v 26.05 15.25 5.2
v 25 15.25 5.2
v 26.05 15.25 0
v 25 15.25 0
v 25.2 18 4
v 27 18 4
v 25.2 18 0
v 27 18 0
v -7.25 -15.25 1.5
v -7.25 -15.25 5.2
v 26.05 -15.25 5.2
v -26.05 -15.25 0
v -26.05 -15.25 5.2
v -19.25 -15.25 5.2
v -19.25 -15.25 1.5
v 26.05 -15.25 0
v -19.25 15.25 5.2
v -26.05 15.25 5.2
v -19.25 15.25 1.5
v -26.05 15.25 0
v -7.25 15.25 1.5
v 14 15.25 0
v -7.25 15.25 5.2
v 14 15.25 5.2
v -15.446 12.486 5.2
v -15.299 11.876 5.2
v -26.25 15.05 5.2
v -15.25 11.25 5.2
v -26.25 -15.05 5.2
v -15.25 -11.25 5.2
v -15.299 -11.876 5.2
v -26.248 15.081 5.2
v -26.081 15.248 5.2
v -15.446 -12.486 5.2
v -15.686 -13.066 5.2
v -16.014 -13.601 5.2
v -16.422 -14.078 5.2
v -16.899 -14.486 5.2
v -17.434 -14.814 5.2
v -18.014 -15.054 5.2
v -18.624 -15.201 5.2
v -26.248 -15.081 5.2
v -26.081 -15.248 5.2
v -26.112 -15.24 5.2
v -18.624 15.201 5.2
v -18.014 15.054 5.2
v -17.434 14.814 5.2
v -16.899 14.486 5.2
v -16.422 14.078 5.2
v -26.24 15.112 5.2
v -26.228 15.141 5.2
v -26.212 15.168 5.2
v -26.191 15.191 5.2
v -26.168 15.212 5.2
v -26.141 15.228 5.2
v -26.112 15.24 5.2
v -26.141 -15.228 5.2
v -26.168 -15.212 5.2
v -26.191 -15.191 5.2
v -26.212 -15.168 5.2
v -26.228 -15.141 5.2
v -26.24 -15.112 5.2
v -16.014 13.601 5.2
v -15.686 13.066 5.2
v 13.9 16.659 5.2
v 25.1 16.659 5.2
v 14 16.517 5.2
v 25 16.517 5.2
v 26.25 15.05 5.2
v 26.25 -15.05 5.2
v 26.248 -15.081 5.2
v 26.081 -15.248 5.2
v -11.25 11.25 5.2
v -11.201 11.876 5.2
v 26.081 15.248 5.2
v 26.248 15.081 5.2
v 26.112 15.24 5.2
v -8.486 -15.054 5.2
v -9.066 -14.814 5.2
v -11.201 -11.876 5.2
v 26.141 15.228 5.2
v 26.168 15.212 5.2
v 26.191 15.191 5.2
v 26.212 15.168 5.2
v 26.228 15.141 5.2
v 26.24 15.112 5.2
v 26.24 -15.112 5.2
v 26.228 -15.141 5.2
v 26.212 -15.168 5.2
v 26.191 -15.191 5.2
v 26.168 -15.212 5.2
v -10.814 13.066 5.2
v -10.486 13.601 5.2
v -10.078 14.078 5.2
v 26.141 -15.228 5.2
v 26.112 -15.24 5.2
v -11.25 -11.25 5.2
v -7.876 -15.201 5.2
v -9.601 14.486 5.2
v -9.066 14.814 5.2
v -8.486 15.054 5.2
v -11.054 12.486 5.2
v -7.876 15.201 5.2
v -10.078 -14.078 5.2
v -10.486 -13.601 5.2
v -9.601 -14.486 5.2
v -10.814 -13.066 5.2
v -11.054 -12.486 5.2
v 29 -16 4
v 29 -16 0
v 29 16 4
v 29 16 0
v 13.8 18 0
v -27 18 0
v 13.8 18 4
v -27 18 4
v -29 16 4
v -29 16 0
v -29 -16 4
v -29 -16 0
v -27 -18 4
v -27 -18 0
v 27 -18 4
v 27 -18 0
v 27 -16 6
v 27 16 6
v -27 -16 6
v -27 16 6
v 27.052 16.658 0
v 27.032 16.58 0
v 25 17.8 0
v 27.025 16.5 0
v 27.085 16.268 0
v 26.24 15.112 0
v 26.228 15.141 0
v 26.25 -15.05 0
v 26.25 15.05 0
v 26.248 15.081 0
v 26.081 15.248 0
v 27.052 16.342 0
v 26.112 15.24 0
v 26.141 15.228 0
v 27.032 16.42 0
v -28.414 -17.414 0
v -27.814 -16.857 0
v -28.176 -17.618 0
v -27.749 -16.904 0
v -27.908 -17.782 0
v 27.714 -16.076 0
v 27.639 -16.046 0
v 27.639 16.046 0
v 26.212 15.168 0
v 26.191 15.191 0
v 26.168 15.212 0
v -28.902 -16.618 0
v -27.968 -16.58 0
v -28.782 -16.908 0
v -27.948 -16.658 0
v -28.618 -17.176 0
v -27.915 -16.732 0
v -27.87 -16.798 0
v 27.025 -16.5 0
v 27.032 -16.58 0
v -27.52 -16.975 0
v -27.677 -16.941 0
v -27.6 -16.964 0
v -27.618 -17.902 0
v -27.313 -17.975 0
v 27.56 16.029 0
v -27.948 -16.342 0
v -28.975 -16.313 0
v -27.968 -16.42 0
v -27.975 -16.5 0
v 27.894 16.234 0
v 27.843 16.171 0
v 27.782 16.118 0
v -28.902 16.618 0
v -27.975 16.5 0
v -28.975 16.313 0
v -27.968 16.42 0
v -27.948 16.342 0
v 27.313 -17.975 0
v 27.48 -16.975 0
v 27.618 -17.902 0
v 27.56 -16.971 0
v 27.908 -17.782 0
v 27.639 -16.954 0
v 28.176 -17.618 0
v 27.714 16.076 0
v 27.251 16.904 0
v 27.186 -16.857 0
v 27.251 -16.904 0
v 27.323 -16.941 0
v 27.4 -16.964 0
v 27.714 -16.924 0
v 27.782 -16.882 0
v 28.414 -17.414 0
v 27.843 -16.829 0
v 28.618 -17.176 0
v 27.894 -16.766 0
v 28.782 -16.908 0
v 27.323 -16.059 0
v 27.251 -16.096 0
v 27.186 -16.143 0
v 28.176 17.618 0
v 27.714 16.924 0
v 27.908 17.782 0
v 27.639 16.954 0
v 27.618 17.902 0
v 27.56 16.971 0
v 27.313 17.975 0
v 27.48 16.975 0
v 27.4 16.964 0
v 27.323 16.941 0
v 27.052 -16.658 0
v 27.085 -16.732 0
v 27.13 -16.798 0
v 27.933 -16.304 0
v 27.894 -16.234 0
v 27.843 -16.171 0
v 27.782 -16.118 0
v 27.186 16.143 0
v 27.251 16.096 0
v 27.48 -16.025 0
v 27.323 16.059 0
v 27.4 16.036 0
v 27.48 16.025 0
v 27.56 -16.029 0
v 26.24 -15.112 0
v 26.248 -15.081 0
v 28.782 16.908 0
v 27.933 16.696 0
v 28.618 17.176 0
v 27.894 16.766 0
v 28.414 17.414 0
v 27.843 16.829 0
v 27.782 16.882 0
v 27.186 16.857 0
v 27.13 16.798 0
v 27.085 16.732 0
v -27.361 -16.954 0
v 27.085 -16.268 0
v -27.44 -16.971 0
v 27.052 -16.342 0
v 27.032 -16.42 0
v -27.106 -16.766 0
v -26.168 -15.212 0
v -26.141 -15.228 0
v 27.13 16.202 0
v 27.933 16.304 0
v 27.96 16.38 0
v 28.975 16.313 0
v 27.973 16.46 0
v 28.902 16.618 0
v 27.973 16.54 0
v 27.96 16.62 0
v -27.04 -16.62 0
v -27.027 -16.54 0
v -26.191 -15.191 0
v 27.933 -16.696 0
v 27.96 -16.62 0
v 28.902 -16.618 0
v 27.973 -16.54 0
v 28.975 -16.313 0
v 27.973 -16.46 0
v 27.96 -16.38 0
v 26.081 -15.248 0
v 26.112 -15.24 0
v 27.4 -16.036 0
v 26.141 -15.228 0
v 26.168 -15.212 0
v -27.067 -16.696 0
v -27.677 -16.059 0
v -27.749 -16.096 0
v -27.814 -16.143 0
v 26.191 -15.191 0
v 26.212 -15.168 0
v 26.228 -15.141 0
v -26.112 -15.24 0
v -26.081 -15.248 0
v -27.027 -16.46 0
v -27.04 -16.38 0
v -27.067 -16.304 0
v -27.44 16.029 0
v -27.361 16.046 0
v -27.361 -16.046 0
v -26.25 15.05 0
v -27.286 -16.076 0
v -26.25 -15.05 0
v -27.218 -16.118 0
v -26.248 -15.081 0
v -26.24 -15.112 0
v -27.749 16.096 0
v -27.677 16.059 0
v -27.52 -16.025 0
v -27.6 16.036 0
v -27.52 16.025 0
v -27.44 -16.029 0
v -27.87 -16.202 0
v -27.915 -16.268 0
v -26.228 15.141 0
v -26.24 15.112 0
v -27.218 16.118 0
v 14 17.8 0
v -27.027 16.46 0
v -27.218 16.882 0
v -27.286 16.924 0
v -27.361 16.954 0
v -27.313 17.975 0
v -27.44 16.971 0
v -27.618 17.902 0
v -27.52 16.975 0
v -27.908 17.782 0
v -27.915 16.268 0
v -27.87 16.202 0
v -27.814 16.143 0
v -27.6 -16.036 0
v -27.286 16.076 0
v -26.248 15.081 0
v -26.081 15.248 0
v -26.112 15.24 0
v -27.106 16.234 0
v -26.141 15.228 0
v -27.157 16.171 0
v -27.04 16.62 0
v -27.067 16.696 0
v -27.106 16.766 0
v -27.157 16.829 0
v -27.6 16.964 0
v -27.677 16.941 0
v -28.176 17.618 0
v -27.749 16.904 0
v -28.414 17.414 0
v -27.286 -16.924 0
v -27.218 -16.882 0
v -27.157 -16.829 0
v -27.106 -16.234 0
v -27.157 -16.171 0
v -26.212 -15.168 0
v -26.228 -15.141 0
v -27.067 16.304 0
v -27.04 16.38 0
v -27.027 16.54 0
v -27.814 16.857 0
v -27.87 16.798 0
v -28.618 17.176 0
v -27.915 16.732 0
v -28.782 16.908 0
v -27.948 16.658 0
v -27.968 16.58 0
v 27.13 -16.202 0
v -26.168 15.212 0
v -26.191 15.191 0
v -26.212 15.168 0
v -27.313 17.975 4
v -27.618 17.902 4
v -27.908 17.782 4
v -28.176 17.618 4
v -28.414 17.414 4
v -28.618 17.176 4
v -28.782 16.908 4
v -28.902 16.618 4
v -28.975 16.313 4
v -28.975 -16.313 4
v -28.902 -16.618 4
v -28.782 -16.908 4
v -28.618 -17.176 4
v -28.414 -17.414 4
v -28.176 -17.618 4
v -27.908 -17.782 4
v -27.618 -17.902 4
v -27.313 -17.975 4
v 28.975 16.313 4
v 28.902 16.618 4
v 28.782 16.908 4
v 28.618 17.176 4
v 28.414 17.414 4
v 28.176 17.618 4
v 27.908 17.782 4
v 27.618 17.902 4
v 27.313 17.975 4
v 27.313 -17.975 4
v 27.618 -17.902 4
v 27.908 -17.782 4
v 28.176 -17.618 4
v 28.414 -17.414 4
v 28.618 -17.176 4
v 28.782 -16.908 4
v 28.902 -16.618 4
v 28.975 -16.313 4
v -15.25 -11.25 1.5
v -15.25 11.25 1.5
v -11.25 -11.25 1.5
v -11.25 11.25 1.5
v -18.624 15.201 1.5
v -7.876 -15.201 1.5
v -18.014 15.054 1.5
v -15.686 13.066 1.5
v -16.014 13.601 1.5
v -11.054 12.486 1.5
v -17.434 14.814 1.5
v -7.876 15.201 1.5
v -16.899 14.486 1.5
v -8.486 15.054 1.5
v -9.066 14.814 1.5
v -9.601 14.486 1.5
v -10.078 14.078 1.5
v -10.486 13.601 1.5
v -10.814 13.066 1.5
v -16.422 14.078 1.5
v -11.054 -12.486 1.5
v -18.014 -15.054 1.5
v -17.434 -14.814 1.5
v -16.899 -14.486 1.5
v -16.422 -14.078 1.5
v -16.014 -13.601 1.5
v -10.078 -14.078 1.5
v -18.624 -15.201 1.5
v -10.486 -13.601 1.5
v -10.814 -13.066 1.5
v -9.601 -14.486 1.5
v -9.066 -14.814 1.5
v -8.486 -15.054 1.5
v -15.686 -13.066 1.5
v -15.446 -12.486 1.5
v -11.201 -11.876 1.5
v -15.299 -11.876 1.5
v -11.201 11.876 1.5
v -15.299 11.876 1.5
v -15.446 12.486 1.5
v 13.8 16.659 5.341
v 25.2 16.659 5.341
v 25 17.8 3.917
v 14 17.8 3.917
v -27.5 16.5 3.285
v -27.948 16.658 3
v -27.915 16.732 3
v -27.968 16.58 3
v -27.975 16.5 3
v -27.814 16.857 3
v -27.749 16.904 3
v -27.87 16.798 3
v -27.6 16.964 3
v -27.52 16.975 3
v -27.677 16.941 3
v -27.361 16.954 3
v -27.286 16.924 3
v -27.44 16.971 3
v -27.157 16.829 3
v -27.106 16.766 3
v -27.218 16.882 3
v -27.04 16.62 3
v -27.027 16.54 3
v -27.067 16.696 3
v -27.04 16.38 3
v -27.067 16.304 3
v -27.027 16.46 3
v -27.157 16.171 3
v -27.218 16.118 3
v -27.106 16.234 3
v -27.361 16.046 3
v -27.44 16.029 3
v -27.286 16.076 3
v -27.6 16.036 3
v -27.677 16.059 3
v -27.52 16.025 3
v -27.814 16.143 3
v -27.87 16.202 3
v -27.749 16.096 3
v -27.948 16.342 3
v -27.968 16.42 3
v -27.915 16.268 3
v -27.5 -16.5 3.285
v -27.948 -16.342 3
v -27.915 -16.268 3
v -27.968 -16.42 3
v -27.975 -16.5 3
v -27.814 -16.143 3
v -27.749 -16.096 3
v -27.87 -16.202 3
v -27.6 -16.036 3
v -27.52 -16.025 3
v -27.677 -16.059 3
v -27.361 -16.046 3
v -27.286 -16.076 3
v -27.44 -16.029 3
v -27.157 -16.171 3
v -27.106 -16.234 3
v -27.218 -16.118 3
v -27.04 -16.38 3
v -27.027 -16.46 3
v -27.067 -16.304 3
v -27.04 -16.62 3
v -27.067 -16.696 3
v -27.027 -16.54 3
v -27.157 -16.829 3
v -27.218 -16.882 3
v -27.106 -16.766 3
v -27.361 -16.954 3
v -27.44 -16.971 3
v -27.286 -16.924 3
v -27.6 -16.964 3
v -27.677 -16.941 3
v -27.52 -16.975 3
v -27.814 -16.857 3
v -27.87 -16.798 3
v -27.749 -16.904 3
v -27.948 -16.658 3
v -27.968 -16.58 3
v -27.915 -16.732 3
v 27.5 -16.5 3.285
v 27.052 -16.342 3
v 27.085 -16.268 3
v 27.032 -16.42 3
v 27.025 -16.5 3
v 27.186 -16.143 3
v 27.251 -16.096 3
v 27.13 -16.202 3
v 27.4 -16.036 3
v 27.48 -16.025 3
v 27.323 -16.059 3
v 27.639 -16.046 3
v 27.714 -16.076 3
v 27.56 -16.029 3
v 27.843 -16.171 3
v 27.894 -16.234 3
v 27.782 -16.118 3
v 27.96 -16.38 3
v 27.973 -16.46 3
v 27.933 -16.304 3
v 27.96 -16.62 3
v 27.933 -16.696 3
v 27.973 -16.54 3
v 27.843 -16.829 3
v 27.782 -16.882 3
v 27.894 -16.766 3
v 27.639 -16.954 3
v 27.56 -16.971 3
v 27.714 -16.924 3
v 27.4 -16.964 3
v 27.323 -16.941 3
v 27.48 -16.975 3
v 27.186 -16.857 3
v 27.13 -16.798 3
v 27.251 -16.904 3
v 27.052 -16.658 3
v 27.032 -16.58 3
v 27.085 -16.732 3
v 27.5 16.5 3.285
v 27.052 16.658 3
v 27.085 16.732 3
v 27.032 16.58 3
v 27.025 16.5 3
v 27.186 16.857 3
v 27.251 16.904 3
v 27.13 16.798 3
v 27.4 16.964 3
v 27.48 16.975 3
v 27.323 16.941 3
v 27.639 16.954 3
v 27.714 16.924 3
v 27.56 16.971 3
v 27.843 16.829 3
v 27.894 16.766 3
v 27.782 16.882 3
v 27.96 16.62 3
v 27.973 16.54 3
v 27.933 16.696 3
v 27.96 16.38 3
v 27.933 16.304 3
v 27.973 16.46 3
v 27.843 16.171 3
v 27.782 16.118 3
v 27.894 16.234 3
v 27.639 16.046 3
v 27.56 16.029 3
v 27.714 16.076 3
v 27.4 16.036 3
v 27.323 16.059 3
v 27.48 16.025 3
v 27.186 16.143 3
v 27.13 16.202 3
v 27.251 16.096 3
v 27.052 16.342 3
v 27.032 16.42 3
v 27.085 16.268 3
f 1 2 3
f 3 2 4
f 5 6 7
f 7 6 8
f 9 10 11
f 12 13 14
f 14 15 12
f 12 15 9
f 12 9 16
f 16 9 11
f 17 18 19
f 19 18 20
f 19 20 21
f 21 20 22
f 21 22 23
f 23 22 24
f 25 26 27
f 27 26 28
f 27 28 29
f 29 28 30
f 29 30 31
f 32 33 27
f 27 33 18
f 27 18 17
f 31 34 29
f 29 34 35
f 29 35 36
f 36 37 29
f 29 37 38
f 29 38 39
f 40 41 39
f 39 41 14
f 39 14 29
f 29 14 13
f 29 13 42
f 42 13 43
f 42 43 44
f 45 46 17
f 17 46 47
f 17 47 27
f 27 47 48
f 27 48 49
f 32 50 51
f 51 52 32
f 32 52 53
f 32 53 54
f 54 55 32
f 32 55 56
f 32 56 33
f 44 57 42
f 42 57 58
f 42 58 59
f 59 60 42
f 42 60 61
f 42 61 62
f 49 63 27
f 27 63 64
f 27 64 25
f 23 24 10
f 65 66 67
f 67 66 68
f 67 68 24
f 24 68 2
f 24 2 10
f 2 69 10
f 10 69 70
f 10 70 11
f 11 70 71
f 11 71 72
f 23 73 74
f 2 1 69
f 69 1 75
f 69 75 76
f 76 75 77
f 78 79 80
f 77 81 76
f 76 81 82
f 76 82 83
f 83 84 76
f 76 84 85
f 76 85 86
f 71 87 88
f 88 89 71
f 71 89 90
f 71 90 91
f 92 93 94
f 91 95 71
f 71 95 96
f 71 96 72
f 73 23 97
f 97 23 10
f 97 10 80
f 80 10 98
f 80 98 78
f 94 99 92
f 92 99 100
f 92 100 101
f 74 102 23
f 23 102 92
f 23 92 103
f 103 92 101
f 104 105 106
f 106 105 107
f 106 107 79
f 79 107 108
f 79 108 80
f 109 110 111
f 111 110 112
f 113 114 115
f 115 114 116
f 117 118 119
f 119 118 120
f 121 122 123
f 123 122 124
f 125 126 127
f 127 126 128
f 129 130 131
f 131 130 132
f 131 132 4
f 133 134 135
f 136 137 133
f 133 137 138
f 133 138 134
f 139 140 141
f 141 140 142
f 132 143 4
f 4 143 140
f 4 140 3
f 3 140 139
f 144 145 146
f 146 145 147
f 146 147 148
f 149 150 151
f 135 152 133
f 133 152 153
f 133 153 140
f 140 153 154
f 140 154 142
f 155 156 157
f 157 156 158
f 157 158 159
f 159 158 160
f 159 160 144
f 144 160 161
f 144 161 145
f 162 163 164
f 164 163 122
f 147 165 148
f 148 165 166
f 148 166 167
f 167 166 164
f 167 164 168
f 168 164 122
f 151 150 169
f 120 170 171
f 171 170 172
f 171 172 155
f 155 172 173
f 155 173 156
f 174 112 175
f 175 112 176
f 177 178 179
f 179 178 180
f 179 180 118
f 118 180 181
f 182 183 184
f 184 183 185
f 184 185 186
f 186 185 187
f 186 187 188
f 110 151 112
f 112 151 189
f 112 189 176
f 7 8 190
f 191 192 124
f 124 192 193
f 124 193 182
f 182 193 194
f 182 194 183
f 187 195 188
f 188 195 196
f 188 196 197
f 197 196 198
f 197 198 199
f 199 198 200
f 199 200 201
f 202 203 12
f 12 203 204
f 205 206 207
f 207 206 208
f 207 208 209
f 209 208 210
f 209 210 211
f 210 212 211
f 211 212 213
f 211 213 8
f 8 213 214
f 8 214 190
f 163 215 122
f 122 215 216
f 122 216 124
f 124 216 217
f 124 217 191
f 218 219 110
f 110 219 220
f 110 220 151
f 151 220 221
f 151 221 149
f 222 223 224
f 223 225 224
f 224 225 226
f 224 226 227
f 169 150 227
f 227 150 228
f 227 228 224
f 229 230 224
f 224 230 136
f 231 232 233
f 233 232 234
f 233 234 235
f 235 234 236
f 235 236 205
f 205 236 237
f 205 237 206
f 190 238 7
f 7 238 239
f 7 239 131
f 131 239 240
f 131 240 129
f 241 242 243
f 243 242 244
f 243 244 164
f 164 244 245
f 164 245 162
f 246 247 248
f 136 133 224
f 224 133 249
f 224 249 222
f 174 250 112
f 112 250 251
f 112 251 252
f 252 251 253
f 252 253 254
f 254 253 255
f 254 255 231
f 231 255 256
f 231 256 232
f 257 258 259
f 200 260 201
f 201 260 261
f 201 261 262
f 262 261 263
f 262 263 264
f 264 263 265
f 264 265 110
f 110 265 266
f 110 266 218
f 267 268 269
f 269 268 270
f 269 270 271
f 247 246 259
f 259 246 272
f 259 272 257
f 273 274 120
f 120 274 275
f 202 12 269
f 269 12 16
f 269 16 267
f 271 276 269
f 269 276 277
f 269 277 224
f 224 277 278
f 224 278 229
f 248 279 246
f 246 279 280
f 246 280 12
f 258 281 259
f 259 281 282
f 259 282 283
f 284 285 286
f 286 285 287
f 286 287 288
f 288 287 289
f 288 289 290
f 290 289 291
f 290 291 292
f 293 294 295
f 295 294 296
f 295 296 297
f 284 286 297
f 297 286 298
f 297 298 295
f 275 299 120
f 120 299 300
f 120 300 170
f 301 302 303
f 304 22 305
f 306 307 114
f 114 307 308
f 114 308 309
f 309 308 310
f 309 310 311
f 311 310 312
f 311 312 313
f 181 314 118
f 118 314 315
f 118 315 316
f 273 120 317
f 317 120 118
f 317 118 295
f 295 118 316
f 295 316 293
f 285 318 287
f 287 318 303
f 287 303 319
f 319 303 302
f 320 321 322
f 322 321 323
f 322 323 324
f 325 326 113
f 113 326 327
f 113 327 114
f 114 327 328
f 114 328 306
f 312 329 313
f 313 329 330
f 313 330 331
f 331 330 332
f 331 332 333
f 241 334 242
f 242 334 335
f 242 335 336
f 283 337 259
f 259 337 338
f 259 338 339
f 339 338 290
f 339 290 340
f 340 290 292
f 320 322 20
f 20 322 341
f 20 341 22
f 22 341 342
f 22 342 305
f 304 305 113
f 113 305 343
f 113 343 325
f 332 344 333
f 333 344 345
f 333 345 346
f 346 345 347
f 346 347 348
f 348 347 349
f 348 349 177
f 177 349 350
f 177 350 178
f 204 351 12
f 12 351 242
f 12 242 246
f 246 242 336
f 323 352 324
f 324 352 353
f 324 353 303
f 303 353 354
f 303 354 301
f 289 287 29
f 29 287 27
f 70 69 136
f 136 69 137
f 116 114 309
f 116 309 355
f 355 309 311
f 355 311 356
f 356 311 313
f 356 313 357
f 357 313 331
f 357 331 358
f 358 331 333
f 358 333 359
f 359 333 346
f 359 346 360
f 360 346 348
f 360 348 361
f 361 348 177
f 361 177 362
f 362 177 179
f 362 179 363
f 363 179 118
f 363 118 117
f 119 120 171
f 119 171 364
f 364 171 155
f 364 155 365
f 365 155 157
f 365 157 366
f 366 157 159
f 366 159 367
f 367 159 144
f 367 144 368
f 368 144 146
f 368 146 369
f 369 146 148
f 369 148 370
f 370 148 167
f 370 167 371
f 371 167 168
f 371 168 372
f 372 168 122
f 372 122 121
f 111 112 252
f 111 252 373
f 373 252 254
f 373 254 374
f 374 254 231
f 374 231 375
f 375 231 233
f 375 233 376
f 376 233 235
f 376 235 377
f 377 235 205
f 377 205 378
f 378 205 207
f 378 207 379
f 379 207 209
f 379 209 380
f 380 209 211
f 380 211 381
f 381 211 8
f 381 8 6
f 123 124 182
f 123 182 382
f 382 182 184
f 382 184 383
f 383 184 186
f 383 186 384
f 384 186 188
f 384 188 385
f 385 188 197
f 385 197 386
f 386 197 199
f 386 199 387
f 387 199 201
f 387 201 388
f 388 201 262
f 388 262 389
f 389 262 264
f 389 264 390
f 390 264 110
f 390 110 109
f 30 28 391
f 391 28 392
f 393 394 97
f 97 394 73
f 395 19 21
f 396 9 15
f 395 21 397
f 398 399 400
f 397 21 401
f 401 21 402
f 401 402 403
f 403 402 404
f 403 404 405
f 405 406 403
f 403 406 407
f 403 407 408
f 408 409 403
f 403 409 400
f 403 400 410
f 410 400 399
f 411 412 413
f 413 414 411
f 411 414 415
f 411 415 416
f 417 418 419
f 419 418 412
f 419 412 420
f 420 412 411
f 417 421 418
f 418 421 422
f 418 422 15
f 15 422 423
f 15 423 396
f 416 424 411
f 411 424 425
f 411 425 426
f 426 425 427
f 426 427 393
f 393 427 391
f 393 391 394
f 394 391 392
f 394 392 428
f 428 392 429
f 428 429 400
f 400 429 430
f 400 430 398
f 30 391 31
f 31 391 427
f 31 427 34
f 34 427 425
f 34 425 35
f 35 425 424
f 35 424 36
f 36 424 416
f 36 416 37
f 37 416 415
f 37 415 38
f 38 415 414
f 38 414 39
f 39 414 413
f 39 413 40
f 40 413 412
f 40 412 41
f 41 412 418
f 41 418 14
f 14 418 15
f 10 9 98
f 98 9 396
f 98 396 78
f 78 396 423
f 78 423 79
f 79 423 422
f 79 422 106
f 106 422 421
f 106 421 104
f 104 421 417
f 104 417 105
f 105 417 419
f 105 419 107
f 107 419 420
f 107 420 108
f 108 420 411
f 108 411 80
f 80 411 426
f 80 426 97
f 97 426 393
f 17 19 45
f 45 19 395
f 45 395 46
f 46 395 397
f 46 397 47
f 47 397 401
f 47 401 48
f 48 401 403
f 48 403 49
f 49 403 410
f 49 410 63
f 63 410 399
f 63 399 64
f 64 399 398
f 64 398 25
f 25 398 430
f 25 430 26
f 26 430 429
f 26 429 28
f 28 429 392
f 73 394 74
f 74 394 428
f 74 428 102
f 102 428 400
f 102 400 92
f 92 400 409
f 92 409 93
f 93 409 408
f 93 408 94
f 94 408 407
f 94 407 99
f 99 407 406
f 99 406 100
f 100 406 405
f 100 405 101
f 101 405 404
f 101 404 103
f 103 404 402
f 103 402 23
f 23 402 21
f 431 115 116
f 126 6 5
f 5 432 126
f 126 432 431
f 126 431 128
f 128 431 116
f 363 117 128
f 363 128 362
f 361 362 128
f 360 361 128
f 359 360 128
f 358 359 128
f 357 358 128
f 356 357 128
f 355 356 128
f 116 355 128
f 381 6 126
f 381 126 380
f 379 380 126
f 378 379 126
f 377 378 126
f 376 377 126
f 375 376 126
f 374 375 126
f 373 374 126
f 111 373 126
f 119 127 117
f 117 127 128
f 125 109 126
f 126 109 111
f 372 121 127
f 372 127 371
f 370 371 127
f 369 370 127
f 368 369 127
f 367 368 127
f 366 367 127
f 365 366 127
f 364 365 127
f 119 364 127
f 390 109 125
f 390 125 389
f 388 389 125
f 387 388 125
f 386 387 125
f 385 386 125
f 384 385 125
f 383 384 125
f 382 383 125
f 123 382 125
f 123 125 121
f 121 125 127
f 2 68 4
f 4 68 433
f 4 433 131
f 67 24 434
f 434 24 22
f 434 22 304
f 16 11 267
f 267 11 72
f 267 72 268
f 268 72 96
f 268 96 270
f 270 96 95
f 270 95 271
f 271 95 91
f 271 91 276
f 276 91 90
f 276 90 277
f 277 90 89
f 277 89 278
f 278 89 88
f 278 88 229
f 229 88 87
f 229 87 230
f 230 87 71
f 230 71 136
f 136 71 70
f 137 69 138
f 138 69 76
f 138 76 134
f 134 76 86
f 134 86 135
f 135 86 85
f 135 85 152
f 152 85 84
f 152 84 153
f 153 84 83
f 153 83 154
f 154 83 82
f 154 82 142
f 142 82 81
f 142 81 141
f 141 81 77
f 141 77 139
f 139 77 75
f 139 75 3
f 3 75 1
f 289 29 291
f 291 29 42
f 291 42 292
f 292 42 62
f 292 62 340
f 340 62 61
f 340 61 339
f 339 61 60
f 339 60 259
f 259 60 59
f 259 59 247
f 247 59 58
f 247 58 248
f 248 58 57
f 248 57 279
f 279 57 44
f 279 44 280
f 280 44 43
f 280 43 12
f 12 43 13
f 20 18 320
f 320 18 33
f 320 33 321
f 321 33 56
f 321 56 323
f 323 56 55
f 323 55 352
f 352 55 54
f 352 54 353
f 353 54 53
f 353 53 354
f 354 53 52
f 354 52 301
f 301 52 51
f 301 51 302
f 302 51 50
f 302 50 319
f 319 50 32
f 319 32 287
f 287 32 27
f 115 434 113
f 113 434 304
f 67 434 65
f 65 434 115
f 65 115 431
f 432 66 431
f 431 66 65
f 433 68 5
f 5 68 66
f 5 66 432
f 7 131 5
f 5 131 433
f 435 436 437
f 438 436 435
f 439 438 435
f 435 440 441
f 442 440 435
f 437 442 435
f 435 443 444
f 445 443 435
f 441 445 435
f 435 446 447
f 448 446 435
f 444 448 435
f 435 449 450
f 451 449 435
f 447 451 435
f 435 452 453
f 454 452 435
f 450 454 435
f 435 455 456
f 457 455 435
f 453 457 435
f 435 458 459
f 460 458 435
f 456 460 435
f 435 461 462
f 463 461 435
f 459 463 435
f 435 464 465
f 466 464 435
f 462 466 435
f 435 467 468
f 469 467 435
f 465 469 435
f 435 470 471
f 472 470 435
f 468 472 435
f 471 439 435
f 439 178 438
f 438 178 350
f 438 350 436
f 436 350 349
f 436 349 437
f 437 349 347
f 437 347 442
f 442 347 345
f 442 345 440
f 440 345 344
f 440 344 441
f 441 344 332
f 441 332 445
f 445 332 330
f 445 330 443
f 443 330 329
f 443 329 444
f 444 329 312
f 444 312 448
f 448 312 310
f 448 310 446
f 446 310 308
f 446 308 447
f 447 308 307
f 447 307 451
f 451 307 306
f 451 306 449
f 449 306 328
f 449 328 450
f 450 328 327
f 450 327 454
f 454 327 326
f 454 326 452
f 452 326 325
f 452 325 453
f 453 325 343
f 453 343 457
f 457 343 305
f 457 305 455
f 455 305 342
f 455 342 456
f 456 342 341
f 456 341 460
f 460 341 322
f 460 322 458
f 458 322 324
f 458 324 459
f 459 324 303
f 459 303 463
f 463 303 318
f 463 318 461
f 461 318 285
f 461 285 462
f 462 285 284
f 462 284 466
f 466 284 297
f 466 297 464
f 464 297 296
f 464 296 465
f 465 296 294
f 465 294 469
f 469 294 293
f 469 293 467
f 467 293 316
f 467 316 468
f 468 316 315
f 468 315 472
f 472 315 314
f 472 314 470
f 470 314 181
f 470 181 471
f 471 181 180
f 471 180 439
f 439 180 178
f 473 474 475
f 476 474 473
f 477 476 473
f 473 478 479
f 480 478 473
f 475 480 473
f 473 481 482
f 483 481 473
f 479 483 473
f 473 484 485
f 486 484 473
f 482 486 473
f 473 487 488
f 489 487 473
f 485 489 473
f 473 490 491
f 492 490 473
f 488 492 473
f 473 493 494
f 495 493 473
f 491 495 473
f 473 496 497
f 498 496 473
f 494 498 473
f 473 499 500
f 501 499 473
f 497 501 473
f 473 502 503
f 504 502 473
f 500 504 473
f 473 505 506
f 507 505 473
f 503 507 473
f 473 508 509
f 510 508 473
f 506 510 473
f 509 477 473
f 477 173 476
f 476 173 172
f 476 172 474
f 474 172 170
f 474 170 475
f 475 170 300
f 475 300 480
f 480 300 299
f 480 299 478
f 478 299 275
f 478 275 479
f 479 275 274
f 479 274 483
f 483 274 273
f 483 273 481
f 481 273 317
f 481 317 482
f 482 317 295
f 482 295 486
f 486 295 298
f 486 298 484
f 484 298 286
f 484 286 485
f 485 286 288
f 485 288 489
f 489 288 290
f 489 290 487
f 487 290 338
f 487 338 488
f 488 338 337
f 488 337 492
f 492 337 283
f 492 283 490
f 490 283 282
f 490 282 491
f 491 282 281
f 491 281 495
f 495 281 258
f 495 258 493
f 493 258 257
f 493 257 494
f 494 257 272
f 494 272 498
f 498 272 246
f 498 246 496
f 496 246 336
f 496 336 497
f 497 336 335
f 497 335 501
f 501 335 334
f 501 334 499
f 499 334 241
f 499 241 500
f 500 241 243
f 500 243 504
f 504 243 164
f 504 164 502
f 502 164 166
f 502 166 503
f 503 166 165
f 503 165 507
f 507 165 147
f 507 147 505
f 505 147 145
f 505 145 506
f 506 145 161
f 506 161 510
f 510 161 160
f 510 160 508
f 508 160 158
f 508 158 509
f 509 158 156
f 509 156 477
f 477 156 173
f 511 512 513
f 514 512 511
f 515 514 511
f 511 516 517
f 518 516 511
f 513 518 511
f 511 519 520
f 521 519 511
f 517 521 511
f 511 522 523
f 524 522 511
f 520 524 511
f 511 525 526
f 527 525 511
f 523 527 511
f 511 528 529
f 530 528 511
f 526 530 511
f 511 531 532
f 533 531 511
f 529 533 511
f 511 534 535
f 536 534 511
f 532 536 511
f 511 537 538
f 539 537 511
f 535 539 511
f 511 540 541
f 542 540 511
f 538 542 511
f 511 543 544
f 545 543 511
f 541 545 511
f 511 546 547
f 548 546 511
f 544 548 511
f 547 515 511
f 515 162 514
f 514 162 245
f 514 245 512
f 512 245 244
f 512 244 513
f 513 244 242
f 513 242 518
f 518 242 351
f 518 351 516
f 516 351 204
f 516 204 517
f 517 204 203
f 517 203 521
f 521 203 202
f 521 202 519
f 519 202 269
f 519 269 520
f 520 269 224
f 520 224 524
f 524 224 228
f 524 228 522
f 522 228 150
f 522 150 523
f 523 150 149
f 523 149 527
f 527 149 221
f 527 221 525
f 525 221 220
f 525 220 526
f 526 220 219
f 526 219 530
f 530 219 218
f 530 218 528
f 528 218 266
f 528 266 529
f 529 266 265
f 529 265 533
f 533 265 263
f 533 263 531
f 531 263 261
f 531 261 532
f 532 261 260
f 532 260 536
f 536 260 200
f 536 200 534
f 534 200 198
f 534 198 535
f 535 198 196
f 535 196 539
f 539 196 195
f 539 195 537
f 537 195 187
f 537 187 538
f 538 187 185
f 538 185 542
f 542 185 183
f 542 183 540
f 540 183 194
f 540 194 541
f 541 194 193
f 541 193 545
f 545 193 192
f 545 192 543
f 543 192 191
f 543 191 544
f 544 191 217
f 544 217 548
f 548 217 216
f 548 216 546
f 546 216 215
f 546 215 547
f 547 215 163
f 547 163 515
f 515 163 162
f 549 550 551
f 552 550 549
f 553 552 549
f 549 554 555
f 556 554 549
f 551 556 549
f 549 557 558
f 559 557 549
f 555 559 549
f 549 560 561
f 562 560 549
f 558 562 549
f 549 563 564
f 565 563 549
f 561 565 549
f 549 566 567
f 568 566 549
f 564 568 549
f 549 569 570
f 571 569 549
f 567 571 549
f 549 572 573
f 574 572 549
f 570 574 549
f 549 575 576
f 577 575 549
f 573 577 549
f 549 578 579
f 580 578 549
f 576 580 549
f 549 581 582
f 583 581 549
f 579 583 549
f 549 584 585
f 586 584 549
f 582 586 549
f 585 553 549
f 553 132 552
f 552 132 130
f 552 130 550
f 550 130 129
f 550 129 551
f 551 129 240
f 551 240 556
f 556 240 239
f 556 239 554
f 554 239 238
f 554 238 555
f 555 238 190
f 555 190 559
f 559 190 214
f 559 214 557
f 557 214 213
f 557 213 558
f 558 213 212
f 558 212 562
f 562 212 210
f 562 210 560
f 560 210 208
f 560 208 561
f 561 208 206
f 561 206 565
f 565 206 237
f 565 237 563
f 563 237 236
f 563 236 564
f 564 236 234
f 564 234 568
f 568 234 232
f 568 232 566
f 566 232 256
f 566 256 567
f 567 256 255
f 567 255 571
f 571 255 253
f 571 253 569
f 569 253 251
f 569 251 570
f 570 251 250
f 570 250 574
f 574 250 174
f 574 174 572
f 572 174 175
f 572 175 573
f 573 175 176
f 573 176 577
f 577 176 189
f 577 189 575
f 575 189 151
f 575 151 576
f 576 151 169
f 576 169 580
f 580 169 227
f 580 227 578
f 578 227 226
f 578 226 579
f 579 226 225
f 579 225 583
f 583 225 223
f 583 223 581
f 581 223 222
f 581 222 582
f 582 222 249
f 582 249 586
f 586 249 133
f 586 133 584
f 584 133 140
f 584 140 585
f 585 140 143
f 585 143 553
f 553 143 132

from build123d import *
from OCP.BRepFilletAPI import BRepFilletAPI_MakeChamfer

# Parameters (mm, degrees)
SKETCH_1_W          = 58
SKETCH_1_H          = 36
EXTRUDE_1_DEPTH     = 6
SKETCH_2_W          = 52.5
SKETCH_2_H          = 30.5
CUT_EXTRUDE_1_DEPTH = 5.2
FILLET_1_R          = 2
SKETCH_3_W          = 4
SKETCH_3_H          = 30.5
EXTRUDE_2_DEPTH     = 3.7
FILLET_2_R          = 4
CHAMFER_1_SIZE      = 2
SKETCH_4_W          = 11
SKETCH_4_H          = 5.2
CUT_EXTRUDE_2_DEPTH = 10
FILLET_3_R          = 0.2
CHAMFER_2_SIZE      = 0.2
CHAMFER_2_SIZE_2    = 0.141421356
M1_2X0_25_1_D       = 0.95
M1_2X0_25_1_DEPTH   = 3
M1_2X0_25_1_TIP     = 0.285408794


with BuildPart() as part:
    # 草图1 → 凸台-拉伸1 (new body)
    with BuildSketch(Plane.XY):
        Rectangle(SKETCH_1_W, SKETCH_1_H)
    extrude(amount=EXTRUDE_1_DEPTH)

    # 草图2 → 切除-拉伸1 (cut)
    with BuildSketch(Plane(origin=(0, 0, 0), x_dir=(-1, 0, 0), z_dir=(0, 0, -1))):
        Rectangle(SKETCH_2_W, SKETCH_2_H)
    extrude(amount=-CUT_EXTRUDE_1_DEPTH, mode=Mode.SUBTRACT)

    # 圆角1
    fillet_1_edges = [part.edges().sort_by_distance(p)[0] for p in [
        (29, -18, 3),
        (-29, -18, 3),
        (-29, 18, 3),
        (29, 18, 3),
    ]]
    fillet(fillet_1_edges, radius=FILLET_1_R)

    # 草图3 → 凸台-拉伸2 (add)
    with BuildSketch(Plane(origin=(0, 0, 5.2), x_dir=(-1, 0, 0), z_dir=(0, 0, -1))):
        with Locations((13.25, 0)):
            Rectangle(SKETCH_3_W, SKETCH_3_H)
    extrude(amount=EXTRUDE_2_DEPTH)

    # 圆角2
    fillet_2_edges = [part.edges().sort_by_distance(p)[0] for p in [
        (-15.25, -15.25, 3.35),
        (-15.25, 15.25, 3.35),
        (-11.25, 15.25, 3.35),
        (-11.25, -15.25, 3.35),
    ]]
    fillet(fillet_2_edges, radius=FILLET_2_R)

    # 倒角1
    chamfer_1_edges = [part.edges().sort_by_distance(p)[0] for p in [
        (-29, 0, 6),
        (0, 18, 6),
        (29, 0, 6),
        (0, -18, 6),
        (28.414213562, -17.414213562, 6),
        (28.414213562, 17.414213562, 6),
        (-28.414213562, -17.414213562, 6),
        (-28.414213562, 17.414213562, 6),
    ]]
    chamfer(chamfer_1_edges, length=CHAMFER_1_SIZE)

    # 草图4 → 切除-拉伸2 (cut)
    with BuildSketch(Plane(origin=(0, 18, 0), x_dir=(1, 0, 0), z_dir=(0, 1, 0))):
        with Locations((19.5, -2.6)):
            Rectangle(SKETCH_4_W, SKETCH_4_H)
    extrude(amount=-CUT_EXTRUDE_2_DEPTH, mode=Mode.SUBTRACT)

    # 圆角3
    fillet_3_edges = [part.edges().sort_by_distance(p)[0] for p in [
        (-26.25, 15.25, 2.6),
        (-26.25, -15.25, 2.6),
        (26.25, -15.25, 2.6),
        (26.25, 15.25, 2.6),
    ]]
    fillet(fillet_3_edges, radius=FILLET_3_R)

    # 倒角2
    chamfer_2_edges_1 = [part.edges().sort_by_distance(p)[0] for p in [
        (14, 17.4, 4.6),
        (25, 17.4, 4.6),
        (25, 18, 2),
        (14, 18, 2),
    ]]
    chamfer_2_edges_2 = [part.edges().sort_by_distance(p)[0] for p in [
        (19.5, 16.8, 5.2),
    ]]
    chamfer_2_side_2 = [part.faces().sort_by_distance(p)[0] for p in [
        (19.5, 16.797171573, 5.2),
    ]]
    chamfer_2 = BRepFilletAPI_MakeChamfer(part.part.solid().wrapped)
    for e in chamfer_2_edges_1:
        chamfer_2.Add(CHAMFER_2_SIZE - 0.0001, e.wrapped)
    for e in chamfer_2_edges_2:
        chamfer_2.Add(CHAMFER_2_SIZE_2 - 0.0001, CHAMFER_2_SIZE - 0.0001, e.wrapped, chamfer_2_side_2[0].wrapped)
    add(Compound.cast(chamfer_2.Shape()), mode=Mode.REPLACE)  # a hair under: the kernel refuses the full size

    # M1.2x0.25 螺纹孔1
    with Locations(Plane(origin=(27.5, 16.5, 0), x_dir=(-1, 0, 0), z_dir=(0, 0, -1))):
        with Locations((0, 0), (0, -33), (55, -33), (55, 0)):
            Hole(M1_2X0_25_1_D / 2, depth=M1_2X0_25_1_DEPTH)
            with Locations((0, 0, -(M1_2X0_25_1_DEPTH + M1_2X0_25_1_TIP / 2))):  # 118° drill point
                Cone(0, M1_2X0_25_1_D / 2, M1_2X0_25_1_TIP, mode=Mode.SUBTRACT)


solid = part.part
